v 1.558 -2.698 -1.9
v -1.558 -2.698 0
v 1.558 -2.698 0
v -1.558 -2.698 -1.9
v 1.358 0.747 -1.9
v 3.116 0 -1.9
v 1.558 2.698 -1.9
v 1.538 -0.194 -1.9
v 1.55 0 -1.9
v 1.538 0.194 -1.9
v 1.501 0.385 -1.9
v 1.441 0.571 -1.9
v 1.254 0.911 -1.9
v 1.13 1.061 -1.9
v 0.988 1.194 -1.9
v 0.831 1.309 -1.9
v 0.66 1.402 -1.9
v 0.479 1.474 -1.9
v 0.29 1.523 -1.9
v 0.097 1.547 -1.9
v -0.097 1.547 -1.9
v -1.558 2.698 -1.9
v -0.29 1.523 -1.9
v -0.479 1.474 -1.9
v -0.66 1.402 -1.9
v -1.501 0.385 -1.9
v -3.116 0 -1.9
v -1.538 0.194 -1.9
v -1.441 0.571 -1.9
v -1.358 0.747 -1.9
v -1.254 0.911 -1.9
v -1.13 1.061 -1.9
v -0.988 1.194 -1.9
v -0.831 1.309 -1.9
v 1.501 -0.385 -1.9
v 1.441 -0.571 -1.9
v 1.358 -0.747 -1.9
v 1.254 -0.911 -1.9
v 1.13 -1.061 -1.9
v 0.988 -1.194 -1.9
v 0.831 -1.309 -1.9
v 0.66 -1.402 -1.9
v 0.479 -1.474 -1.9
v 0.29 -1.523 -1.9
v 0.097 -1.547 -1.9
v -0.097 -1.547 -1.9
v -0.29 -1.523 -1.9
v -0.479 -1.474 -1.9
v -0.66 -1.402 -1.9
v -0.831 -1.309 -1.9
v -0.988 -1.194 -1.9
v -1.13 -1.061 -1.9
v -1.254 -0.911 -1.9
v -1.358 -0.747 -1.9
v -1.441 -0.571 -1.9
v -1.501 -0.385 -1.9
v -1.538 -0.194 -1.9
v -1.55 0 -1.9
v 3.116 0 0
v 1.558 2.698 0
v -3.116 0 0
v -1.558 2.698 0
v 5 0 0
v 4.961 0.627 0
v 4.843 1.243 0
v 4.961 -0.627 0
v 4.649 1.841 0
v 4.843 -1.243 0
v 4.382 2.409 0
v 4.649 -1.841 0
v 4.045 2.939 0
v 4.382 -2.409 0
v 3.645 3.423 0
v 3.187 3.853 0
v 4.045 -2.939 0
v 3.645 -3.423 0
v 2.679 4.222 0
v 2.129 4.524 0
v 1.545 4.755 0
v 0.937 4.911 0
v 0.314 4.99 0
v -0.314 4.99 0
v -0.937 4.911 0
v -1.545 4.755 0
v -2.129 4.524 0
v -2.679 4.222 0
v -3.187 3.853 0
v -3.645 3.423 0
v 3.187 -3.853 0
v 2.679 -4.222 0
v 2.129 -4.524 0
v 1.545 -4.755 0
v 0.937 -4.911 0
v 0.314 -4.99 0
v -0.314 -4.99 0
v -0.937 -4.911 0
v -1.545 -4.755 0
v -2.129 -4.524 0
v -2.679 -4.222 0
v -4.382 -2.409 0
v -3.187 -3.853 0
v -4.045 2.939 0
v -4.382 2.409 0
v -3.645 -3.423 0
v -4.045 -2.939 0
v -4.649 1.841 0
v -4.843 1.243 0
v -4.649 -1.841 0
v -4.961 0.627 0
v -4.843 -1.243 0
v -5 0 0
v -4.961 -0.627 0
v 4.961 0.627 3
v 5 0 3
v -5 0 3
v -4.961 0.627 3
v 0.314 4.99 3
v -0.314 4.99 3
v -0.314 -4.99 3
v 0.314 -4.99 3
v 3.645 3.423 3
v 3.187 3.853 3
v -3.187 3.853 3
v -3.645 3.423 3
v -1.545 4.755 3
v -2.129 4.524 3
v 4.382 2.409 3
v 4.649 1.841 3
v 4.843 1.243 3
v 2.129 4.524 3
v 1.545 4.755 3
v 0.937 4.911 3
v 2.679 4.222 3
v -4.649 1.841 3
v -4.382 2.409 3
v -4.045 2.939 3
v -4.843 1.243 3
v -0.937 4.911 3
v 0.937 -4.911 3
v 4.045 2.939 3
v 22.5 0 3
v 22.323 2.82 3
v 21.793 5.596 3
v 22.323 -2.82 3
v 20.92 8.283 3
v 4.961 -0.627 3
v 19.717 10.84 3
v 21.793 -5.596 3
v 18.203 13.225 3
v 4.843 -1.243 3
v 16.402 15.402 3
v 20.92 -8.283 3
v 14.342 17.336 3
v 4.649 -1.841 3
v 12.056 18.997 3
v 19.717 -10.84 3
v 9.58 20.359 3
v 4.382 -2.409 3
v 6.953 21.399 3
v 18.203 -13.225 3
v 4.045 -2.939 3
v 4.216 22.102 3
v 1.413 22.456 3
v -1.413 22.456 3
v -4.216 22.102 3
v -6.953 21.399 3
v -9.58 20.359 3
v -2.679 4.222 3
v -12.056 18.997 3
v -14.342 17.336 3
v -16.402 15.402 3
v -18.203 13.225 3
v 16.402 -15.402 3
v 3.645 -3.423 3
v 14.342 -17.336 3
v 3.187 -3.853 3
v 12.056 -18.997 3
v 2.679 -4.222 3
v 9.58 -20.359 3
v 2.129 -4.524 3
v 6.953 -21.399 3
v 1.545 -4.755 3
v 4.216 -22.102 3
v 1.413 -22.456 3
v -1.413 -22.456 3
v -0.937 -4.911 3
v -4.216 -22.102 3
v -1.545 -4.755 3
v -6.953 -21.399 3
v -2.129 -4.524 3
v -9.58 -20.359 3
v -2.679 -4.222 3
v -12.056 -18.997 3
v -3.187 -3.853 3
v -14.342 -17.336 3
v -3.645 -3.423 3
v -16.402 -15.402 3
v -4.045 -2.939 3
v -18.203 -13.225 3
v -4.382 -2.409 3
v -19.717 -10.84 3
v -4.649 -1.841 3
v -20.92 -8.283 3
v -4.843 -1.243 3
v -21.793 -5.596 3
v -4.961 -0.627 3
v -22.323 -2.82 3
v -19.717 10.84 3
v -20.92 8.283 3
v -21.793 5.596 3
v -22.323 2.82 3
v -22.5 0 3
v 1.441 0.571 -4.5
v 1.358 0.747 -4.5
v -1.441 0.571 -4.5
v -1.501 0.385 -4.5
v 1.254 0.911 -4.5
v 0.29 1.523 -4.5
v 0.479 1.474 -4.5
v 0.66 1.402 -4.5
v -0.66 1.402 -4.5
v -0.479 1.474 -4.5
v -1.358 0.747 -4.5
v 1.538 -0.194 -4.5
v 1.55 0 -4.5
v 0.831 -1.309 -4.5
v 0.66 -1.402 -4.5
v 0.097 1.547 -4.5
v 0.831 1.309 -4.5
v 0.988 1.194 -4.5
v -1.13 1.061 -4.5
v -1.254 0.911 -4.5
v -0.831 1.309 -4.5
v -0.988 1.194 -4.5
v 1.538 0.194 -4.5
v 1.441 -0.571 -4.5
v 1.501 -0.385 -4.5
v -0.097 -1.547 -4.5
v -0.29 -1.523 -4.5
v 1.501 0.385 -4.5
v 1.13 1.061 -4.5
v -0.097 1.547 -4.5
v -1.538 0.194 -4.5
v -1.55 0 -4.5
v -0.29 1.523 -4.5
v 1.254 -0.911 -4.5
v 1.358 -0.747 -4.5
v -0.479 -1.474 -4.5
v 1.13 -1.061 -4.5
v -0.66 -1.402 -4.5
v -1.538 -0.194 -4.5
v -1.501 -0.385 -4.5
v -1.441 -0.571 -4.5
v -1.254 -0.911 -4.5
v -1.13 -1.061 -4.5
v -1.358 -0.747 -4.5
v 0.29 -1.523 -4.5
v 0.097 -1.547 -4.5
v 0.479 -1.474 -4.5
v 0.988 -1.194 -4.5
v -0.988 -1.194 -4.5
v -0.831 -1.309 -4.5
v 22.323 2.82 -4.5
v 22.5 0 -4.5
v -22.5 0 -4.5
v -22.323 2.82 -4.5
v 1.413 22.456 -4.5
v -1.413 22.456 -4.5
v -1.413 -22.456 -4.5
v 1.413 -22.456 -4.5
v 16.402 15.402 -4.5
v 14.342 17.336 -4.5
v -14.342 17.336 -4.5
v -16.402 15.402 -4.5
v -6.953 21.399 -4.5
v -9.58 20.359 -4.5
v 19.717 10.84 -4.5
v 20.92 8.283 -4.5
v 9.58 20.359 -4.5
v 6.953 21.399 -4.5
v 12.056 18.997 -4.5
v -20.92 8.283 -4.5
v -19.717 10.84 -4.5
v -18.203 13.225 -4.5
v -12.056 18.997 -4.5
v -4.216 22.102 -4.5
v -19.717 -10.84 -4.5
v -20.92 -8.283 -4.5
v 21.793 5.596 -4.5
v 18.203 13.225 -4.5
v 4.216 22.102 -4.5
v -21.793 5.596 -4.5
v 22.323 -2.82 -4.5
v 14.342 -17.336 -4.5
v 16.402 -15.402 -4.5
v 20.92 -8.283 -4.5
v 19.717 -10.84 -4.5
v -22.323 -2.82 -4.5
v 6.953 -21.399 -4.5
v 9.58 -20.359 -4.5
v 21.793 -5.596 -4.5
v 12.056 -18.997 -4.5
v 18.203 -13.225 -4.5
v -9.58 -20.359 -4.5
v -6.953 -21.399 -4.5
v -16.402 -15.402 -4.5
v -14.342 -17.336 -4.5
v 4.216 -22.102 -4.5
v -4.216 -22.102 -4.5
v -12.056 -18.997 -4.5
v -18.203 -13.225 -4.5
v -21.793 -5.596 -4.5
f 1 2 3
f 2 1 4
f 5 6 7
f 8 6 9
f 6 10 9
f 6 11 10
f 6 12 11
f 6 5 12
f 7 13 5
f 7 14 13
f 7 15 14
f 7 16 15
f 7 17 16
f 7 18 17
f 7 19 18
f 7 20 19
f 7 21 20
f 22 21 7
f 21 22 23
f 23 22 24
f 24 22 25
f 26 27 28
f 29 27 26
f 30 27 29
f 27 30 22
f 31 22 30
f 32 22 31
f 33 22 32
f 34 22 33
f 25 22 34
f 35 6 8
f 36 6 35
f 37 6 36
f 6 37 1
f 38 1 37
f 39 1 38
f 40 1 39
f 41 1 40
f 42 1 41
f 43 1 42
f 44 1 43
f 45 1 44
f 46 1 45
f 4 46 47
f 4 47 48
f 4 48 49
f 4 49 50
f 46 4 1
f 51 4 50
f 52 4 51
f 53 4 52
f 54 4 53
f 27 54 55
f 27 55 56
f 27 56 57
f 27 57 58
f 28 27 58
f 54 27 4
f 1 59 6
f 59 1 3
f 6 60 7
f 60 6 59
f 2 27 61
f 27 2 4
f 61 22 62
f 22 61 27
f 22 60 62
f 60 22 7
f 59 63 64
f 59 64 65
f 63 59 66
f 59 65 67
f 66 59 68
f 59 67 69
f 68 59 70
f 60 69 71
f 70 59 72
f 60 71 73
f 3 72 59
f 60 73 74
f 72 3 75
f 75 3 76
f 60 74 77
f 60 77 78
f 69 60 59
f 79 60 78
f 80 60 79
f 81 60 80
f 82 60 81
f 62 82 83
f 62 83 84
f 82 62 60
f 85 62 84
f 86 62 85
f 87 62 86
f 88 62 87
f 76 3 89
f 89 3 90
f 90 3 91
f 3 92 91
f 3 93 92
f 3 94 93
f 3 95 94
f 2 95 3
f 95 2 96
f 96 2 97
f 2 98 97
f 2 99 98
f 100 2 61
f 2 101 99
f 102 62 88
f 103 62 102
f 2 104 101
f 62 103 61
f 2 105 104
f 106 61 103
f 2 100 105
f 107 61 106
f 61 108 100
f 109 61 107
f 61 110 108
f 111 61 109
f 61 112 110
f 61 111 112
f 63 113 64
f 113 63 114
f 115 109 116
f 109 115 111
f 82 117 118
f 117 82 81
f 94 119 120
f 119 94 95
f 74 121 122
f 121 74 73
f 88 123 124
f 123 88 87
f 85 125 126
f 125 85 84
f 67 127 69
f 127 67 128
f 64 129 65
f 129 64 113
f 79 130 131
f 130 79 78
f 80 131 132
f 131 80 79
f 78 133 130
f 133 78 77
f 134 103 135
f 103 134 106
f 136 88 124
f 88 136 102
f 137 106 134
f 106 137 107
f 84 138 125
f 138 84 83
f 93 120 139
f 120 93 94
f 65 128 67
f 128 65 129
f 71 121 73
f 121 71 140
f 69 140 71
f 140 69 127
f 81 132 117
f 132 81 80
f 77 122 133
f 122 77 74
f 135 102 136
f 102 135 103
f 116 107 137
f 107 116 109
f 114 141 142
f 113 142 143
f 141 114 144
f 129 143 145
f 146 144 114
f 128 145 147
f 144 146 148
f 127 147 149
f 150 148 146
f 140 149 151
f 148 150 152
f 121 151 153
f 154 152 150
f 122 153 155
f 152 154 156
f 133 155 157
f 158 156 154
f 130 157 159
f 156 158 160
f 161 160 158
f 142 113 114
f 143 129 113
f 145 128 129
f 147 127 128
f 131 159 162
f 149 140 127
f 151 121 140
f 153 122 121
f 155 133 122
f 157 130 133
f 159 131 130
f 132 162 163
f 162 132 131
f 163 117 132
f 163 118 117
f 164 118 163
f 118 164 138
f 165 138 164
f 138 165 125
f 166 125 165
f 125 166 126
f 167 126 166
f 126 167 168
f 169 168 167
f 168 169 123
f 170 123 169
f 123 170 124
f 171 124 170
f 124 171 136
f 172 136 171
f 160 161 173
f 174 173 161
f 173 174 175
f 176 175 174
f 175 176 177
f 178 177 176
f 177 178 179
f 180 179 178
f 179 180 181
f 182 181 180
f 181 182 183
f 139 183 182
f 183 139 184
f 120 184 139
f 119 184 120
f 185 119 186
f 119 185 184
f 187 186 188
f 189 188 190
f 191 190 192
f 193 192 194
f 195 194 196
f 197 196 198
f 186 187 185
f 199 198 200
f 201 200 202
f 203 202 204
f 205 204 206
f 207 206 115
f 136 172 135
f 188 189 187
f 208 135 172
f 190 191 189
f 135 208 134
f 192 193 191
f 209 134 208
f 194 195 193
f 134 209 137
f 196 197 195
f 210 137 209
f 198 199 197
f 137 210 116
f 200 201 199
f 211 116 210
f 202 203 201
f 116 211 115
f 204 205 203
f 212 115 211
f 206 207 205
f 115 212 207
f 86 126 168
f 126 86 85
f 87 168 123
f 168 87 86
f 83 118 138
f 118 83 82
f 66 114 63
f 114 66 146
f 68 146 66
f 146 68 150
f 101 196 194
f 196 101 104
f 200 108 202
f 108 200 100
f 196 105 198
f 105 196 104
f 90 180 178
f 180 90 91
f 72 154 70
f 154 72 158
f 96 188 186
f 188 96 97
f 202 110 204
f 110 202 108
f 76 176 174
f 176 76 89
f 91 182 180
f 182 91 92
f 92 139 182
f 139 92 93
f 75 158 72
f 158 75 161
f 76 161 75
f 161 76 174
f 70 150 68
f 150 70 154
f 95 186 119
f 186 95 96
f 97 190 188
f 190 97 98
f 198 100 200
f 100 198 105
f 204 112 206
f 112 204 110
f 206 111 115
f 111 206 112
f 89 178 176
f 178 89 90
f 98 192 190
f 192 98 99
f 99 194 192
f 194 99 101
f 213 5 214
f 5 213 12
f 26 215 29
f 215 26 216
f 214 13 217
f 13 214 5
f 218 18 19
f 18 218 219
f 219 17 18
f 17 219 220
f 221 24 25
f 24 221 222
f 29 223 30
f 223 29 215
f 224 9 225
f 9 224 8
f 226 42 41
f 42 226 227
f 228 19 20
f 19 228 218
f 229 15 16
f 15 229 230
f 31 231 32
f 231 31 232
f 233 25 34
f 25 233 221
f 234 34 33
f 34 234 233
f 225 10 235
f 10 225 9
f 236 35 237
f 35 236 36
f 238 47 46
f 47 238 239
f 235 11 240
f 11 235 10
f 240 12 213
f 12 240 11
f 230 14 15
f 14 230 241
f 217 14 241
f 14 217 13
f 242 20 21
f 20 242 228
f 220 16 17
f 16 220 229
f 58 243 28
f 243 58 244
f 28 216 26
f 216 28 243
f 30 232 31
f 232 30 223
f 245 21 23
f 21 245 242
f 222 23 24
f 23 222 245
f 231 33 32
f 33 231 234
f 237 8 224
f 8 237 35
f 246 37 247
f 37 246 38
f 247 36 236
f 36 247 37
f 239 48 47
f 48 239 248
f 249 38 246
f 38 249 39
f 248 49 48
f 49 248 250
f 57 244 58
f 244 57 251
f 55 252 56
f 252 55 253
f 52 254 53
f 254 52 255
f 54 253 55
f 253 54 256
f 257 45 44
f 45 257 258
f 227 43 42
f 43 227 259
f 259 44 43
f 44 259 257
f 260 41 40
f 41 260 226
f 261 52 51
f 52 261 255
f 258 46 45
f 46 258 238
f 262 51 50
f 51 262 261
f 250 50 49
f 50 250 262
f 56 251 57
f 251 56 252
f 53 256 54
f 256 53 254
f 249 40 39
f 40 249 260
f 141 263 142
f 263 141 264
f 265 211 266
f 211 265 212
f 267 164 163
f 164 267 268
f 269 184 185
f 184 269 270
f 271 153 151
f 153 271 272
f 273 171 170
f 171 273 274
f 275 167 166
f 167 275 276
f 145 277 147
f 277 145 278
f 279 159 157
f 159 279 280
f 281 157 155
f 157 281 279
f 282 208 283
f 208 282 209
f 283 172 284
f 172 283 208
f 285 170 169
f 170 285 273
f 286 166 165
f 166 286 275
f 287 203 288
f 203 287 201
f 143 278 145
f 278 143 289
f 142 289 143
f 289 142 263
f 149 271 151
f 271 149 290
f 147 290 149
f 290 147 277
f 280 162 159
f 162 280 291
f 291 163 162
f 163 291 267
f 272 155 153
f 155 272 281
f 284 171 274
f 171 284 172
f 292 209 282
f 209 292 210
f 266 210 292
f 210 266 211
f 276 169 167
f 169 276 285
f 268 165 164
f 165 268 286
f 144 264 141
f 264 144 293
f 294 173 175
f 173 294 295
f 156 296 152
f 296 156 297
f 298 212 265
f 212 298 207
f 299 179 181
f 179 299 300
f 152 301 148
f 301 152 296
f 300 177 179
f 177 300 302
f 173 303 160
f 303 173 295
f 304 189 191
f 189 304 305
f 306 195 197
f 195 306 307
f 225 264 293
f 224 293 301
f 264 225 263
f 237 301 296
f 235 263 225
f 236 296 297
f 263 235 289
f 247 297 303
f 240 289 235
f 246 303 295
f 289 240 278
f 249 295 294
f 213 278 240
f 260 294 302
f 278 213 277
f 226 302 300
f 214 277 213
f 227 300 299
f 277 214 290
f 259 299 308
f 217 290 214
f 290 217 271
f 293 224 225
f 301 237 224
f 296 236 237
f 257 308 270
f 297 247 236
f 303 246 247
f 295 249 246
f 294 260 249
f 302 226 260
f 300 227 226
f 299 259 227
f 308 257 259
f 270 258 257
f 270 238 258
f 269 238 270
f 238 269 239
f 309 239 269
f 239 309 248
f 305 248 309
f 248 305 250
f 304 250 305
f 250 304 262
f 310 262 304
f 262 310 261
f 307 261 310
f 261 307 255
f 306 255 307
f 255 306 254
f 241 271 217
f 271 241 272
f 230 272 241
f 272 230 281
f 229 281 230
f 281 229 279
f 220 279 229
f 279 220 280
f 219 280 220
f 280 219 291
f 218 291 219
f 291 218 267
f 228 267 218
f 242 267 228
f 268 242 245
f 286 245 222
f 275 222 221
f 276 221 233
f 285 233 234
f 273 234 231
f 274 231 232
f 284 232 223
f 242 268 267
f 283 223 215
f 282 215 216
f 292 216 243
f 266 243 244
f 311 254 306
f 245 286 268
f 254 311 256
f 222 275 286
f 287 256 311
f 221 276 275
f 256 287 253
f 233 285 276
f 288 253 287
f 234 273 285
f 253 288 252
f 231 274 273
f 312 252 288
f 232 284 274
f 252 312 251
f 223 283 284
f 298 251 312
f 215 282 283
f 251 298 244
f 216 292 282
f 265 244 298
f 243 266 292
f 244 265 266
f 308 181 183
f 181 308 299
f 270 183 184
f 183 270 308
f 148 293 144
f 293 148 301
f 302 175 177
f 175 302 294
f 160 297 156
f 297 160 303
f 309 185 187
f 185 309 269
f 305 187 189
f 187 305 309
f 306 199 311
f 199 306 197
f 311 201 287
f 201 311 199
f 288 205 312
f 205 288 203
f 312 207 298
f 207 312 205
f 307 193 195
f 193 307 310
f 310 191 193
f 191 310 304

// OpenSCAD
$fn = 50;

difference() {
	union() {
		translate(v = [0, 0, -4.5]) {
			cylinder(h = 7.5, r = 22.5);
		}
	}
	union() {
		translate(v = [0, 0, 0]) {
			rotate(a = [0, 0, 0]) {
				difference() {
					union() {
						translate(v = [0, 0, -1.9]) {
							linear_extrude(height = 1.9) {
								polygon(points = [[3.1158, 0.0], [1.5579000000000005, 2.698361953111554], [-1.5578999999999994, 2.6983619531115544], [-3.1158, 3.815754496783323e-16], [-1.5579000000000014, -2.6983619531115535], [1.557899999999998, -2.6983619531115552]]);
							}
						}
					}
					union();
				}
			}
		}
		#cylinder(h = 3, r = 5.0);
		#translate(v = [0, 0, -100.0]) {
			cylinder(h = 200, r = 1.55);
		}
	}
}
